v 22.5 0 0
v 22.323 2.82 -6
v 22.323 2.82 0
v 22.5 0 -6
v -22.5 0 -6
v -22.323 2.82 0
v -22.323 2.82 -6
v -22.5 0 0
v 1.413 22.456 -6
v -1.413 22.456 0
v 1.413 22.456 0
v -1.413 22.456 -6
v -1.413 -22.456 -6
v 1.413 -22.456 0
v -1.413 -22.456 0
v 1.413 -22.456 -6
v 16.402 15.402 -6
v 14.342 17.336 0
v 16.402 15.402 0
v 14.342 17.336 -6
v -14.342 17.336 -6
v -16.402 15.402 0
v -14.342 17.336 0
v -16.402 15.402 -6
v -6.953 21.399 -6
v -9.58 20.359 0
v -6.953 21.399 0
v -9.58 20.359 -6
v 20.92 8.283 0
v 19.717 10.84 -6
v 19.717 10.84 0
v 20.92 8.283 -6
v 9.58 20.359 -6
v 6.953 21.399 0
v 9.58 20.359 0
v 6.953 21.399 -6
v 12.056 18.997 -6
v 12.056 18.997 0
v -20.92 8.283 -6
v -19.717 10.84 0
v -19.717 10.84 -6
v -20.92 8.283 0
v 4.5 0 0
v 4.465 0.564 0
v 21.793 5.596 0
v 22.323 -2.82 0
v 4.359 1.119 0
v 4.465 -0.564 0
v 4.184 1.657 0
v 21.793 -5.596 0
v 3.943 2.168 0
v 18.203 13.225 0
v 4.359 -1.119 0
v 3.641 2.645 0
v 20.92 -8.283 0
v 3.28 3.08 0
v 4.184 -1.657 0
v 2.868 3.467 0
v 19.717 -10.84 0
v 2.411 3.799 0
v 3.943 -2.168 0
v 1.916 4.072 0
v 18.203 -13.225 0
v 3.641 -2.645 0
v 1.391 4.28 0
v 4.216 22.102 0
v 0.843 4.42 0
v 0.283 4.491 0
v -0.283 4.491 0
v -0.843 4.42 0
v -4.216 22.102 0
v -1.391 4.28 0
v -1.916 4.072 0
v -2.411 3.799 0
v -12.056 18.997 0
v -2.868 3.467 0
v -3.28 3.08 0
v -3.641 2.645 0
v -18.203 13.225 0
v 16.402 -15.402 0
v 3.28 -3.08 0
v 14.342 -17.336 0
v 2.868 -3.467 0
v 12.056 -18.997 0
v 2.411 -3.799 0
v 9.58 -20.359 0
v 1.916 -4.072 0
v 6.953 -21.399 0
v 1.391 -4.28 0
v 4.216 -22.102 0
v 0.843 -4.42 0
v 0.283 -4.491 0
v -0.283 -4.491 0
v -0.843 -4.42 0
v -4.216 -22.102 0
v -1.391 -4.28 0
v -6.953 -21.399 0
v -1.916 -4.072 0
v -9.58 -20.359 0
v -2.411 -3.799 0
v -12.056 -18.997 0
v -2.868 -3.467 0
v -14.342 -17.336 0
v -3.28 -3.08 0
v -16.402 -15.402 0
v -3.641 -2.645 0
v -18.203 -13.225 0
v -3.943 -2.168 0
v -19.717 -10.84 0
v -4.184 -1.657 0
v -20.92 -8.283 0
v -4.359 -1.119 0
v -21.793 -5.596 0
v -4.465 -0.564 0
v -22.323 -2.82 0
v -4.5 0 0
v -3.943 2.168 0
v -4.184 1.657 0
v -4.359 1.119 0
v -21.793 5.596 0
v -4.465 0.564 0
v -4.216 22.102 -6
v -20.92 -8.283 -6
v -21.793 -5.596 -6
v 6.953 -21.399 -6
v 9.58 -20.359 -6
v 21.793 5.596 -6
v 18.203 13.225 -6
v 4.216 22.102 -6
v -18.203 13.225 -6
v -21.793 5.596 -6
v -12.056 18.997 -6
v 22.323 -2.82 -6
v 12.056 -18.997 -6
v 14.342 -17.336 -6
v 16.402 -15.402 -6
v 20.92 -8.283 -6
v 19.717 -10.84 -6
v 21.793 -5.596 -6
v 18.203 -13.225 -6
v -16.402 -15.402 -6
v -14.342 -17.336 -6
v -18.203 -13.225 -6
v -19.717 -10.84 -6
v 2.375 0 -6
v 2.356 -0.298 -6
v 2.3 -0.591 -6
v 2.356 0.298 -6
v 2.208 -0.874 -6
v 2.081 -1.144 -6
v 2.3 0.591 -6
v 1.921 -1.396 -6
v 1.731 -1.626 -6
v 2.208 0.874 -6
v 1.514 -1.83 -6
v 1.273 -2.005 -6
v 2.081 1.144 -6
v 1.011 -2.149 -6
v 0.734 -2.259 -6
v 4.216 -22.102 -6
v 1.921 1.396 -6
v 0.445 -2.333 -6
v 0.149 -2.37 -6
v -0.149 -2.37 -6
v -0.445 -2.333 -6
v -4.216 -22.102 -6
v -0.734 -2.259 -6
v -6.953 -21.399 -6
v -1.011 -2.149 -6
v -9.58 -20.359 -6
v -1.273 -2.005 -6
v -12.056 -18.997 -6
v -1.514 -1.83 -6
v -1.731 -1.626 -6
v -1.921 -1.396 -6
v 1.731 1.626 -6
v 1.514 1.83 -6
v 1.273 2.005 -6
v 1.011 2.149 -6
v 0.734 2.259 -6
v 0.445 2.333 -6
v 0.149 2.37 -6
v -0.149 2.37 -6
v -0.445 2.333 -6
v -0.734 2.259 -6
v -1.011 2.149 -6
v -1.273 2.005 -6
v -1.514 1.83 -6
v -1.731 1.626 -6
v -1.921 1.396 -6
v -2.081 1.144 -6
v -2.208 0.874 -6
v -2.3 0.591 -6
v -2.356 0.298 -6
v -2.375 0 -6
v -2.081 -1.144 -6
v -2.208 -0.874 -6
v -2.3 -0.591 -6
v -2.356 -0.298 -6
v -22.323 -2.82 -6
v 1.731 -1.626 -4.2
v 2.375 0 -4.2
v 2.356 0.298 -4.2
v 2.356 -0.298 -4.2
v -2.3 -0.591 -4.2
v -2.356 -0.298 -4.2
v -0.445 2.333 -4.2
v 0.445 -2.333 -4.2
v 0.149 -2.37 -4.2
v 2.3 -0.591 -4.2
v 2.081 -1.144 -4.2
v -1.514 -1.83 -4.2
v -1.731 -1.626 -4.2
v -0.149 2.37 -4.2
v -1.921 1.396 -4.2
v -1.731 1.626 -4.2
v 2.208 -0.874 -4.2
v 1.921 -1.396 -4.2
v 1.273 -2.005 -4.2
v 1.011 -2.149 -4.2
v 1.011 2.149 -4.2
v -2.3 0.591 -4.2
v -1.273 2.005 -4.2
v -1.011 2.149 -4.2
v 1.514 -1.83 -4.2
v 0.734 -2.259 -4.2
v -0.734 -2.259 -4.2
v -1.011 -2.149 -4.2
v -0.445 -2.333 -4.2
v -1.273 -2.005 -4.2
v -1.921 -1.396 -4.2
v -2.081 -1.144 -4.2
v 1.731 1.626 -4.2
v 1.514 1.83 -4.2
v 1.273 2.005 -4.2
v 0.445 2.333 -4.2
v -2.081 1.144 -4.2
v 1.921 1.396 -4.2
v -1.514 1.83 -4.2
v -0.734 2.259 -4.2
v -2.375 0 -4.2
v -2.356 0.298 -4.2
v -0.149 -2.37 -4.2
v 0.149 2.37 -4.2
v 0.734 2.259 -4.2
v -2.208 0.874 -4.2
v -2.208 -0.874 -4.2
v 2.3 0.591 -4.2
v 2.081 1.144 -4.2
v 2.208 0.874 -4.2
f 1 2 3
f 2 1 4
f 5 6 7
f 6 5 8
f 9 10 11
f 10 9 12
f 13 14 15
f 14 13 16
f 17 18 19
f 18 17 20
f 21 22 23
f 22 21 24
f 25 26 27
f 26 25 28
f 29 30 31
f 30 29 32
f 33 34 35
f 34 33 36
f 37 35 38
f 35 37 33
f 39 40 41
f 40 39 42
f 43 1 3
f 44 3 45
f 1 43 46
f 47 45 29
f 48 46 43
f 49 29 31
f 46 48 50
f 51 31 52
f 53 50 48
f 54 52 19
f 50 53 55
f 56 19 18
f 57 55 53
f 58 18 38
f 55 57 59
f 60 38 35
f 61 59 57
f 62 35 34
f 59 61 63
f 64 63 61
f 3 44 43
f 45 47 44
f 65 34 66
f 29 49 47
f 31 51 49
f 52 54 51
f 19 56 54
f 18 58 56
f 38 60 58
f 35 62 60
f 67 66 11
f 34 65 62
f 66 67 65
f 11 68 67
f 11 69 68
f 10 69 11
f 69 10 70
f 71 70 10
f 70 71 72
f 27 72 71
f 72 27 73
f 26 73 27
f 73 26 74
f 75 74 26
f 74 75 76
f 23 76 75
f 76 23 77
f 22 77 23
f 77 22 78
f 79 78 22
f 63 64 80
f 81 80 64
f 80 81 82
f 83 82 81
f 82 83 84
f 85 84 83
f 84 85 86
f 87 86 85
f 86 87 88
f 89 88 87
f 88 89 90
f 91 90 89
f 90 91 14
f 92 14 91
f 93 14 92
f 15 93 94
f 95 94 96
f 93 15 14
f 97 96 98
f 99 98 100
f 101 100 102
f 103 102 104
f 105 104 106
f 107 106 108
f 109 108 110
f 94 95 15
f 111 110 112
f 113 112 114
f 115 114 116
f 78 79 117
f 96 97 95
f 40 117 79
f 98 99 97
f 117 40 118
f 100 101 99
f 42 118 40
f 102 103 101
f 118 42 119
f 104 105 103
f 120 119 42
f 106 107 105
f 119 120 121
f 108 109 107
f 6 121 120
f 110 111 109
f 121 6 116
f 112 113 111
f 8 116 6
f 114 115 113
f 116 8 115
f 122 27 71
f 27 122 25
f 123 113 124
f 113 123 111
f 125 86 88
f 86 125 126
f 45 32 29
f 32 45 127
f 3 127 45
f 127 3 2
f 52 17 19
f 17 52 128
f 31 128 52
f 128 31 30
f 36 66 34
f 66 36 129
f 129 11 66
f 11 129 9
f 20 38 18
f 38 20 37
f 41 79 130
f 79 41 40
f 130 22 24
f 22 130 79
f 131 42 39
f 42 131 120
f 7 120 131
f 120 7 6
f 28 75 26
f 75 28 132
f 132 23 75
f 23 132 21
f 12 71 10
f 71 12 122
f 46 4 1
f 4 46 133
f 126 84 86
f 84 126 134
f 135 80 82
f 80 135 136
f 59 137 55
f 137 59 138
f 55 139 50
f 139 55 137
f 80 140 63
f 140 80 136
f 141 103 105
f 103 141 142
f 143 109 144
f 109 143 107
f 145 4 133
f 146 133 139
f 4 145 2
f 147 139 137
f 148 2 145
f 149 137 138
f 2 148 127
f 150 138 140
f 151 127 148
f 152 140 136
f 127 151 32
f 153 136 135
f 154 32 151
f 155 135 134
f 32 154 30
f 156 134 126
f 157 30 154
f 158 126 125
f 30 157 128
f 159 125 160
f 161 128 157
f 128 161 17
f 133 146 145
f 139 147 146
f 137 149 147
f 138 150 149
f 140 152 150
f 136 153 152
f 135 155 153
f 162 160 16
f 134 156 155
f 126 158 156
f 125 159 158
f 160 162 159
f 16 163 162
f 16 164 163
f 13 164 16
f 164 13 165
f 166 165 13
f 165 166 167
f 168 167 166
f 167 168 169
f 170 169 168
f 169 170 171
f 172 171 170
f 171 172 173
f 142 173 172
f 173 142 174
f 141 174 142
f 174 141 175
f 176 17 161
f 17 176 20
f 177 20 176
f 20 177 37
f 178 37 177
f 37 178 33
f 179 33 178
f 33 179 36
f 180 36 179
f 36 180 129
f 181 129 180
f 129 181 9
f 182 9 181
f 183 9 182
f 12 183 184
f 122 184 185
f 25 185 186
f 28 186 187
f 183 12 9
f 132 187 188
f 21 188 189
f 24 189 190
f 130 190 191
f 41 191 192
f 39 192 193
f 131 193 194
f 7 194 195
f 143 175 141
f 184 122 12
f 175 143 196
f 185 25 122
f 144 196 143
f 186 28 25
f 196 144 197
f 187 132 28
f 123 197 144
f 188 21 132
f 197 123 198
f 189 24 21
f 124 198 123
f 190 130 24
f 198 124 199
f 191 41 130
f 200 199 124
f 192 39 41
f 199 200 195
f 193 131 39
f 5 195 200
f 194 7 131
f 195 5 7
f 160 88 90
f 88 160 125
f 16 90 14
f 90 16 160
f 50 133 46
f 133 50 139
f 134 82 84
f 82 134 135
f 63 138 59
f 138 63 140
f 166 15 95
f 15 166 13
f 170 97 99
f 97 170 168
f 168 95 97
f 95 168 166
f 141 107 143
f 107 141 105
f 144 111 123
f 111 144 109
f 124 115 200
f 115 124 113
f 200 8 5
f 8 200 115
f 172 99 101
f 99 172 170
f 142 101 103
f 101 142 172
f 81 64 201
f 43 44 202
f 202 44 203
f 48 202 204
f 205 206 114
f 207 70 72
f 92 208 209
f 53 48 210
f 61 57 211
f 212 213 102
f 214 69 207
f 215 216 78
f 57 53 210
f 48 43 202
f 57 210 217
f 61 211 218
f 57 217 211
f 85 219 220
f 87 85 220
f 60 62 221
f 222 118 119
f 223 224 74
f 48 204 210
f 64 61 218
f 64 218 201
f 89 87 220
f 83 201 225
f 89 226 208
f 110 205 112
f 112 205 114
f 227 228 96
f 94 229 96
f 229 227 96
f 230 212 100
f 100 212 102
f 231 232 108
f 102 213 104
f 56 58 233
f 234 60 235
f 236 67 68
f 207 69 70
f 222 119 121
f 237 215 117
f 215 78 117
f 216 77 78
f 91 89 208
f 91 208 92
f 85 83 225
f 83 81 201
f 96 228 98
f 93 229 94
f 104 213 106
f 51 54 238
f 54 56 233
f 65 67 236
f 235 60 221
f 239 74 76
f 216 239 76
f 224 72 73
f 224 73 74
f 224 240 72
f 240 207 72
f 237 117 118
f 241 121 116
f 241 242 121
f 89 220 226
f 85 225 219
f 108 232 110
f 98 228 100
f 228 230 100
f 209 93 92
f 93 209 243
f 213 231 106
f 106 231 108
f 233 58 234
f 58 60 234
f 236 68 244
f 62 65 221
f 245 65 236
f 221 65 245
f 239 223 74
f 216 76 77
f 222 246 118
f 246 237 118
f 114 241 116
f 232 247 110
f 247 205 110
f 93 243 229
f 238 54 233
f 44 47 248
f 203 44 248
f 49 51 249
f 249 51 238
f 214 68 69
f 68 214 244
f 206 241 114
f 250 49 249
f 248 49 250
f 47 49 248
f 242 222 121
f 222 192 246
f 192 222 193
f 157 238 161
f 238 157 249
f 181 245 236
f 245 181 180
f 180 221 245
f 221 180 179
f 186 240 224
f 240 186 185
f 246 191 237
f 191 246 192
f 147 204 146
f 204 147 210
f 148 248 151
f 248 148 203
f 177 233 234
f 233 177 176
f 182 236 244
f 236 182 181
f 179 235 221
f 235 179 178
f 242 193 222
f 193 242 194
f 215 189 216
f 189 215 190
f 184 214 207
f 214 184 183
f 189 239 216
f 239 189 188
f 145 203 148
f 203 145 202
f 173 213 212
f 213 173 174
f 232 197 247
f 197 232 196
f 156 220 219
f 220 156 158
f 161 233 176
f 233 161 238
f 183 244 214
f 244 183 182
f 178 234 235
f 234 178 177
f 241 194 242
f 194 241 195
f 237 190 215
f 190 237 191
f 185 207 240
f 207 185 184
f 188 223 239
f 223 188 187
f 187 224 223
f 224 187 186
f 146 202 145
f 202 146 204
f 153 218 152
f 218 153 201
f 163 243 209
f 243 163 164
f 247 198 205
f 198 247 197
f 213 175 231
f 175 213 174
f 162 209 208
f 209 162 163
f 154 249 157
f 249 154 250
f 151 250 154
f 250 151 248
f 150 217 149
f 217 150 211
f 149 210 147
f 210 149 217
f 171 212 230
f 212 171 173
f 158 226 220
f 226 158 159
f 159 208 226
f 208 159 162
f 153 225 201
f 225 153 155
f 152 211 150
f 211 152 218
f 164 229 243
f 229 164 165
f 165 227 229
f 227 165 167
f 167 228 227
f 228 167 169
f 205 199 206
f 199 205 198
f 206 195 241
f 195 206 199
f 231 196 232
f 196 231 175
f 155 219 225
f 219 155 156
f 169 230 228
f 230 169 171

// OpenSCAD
$fn = 50;


difference() {
	union() {
		translate(v = [0, 0, -6.0000000000]) {
			cylinder(h = 6, r = 22.5000000000);
		}
		translate(v = [0, 0, -6.0000000000]) {
			cylinder(h = 6, r = 2.8750000000);
		}
	}
	union() {
		translate(v = [0, 0, 0]) {
			rotate(a = [0, 0, 0]) {
				difference() {
					union() {
						translate(v = [0, 0, -6.0000000000]) {
							cylinder(h = 6, r = 2.2500000000);
						}
						translate(v = [0, 0, -4.2000000000]) {
							cylinder(h = 4.2000000000, r1 = 2.3750000000, r2 = 4.5000000000);
						}
						translate(v = [0, 0, -6.0000000000]) {
							cylinder(h = 6, r = 2.3750000000);
						}
						translate(v = [0, 0, -6.0000000000]) {
							cylinder(h = 6, r = 2.2500000000);
						}
					}
					union();
				}
			}
		}
	}
}
